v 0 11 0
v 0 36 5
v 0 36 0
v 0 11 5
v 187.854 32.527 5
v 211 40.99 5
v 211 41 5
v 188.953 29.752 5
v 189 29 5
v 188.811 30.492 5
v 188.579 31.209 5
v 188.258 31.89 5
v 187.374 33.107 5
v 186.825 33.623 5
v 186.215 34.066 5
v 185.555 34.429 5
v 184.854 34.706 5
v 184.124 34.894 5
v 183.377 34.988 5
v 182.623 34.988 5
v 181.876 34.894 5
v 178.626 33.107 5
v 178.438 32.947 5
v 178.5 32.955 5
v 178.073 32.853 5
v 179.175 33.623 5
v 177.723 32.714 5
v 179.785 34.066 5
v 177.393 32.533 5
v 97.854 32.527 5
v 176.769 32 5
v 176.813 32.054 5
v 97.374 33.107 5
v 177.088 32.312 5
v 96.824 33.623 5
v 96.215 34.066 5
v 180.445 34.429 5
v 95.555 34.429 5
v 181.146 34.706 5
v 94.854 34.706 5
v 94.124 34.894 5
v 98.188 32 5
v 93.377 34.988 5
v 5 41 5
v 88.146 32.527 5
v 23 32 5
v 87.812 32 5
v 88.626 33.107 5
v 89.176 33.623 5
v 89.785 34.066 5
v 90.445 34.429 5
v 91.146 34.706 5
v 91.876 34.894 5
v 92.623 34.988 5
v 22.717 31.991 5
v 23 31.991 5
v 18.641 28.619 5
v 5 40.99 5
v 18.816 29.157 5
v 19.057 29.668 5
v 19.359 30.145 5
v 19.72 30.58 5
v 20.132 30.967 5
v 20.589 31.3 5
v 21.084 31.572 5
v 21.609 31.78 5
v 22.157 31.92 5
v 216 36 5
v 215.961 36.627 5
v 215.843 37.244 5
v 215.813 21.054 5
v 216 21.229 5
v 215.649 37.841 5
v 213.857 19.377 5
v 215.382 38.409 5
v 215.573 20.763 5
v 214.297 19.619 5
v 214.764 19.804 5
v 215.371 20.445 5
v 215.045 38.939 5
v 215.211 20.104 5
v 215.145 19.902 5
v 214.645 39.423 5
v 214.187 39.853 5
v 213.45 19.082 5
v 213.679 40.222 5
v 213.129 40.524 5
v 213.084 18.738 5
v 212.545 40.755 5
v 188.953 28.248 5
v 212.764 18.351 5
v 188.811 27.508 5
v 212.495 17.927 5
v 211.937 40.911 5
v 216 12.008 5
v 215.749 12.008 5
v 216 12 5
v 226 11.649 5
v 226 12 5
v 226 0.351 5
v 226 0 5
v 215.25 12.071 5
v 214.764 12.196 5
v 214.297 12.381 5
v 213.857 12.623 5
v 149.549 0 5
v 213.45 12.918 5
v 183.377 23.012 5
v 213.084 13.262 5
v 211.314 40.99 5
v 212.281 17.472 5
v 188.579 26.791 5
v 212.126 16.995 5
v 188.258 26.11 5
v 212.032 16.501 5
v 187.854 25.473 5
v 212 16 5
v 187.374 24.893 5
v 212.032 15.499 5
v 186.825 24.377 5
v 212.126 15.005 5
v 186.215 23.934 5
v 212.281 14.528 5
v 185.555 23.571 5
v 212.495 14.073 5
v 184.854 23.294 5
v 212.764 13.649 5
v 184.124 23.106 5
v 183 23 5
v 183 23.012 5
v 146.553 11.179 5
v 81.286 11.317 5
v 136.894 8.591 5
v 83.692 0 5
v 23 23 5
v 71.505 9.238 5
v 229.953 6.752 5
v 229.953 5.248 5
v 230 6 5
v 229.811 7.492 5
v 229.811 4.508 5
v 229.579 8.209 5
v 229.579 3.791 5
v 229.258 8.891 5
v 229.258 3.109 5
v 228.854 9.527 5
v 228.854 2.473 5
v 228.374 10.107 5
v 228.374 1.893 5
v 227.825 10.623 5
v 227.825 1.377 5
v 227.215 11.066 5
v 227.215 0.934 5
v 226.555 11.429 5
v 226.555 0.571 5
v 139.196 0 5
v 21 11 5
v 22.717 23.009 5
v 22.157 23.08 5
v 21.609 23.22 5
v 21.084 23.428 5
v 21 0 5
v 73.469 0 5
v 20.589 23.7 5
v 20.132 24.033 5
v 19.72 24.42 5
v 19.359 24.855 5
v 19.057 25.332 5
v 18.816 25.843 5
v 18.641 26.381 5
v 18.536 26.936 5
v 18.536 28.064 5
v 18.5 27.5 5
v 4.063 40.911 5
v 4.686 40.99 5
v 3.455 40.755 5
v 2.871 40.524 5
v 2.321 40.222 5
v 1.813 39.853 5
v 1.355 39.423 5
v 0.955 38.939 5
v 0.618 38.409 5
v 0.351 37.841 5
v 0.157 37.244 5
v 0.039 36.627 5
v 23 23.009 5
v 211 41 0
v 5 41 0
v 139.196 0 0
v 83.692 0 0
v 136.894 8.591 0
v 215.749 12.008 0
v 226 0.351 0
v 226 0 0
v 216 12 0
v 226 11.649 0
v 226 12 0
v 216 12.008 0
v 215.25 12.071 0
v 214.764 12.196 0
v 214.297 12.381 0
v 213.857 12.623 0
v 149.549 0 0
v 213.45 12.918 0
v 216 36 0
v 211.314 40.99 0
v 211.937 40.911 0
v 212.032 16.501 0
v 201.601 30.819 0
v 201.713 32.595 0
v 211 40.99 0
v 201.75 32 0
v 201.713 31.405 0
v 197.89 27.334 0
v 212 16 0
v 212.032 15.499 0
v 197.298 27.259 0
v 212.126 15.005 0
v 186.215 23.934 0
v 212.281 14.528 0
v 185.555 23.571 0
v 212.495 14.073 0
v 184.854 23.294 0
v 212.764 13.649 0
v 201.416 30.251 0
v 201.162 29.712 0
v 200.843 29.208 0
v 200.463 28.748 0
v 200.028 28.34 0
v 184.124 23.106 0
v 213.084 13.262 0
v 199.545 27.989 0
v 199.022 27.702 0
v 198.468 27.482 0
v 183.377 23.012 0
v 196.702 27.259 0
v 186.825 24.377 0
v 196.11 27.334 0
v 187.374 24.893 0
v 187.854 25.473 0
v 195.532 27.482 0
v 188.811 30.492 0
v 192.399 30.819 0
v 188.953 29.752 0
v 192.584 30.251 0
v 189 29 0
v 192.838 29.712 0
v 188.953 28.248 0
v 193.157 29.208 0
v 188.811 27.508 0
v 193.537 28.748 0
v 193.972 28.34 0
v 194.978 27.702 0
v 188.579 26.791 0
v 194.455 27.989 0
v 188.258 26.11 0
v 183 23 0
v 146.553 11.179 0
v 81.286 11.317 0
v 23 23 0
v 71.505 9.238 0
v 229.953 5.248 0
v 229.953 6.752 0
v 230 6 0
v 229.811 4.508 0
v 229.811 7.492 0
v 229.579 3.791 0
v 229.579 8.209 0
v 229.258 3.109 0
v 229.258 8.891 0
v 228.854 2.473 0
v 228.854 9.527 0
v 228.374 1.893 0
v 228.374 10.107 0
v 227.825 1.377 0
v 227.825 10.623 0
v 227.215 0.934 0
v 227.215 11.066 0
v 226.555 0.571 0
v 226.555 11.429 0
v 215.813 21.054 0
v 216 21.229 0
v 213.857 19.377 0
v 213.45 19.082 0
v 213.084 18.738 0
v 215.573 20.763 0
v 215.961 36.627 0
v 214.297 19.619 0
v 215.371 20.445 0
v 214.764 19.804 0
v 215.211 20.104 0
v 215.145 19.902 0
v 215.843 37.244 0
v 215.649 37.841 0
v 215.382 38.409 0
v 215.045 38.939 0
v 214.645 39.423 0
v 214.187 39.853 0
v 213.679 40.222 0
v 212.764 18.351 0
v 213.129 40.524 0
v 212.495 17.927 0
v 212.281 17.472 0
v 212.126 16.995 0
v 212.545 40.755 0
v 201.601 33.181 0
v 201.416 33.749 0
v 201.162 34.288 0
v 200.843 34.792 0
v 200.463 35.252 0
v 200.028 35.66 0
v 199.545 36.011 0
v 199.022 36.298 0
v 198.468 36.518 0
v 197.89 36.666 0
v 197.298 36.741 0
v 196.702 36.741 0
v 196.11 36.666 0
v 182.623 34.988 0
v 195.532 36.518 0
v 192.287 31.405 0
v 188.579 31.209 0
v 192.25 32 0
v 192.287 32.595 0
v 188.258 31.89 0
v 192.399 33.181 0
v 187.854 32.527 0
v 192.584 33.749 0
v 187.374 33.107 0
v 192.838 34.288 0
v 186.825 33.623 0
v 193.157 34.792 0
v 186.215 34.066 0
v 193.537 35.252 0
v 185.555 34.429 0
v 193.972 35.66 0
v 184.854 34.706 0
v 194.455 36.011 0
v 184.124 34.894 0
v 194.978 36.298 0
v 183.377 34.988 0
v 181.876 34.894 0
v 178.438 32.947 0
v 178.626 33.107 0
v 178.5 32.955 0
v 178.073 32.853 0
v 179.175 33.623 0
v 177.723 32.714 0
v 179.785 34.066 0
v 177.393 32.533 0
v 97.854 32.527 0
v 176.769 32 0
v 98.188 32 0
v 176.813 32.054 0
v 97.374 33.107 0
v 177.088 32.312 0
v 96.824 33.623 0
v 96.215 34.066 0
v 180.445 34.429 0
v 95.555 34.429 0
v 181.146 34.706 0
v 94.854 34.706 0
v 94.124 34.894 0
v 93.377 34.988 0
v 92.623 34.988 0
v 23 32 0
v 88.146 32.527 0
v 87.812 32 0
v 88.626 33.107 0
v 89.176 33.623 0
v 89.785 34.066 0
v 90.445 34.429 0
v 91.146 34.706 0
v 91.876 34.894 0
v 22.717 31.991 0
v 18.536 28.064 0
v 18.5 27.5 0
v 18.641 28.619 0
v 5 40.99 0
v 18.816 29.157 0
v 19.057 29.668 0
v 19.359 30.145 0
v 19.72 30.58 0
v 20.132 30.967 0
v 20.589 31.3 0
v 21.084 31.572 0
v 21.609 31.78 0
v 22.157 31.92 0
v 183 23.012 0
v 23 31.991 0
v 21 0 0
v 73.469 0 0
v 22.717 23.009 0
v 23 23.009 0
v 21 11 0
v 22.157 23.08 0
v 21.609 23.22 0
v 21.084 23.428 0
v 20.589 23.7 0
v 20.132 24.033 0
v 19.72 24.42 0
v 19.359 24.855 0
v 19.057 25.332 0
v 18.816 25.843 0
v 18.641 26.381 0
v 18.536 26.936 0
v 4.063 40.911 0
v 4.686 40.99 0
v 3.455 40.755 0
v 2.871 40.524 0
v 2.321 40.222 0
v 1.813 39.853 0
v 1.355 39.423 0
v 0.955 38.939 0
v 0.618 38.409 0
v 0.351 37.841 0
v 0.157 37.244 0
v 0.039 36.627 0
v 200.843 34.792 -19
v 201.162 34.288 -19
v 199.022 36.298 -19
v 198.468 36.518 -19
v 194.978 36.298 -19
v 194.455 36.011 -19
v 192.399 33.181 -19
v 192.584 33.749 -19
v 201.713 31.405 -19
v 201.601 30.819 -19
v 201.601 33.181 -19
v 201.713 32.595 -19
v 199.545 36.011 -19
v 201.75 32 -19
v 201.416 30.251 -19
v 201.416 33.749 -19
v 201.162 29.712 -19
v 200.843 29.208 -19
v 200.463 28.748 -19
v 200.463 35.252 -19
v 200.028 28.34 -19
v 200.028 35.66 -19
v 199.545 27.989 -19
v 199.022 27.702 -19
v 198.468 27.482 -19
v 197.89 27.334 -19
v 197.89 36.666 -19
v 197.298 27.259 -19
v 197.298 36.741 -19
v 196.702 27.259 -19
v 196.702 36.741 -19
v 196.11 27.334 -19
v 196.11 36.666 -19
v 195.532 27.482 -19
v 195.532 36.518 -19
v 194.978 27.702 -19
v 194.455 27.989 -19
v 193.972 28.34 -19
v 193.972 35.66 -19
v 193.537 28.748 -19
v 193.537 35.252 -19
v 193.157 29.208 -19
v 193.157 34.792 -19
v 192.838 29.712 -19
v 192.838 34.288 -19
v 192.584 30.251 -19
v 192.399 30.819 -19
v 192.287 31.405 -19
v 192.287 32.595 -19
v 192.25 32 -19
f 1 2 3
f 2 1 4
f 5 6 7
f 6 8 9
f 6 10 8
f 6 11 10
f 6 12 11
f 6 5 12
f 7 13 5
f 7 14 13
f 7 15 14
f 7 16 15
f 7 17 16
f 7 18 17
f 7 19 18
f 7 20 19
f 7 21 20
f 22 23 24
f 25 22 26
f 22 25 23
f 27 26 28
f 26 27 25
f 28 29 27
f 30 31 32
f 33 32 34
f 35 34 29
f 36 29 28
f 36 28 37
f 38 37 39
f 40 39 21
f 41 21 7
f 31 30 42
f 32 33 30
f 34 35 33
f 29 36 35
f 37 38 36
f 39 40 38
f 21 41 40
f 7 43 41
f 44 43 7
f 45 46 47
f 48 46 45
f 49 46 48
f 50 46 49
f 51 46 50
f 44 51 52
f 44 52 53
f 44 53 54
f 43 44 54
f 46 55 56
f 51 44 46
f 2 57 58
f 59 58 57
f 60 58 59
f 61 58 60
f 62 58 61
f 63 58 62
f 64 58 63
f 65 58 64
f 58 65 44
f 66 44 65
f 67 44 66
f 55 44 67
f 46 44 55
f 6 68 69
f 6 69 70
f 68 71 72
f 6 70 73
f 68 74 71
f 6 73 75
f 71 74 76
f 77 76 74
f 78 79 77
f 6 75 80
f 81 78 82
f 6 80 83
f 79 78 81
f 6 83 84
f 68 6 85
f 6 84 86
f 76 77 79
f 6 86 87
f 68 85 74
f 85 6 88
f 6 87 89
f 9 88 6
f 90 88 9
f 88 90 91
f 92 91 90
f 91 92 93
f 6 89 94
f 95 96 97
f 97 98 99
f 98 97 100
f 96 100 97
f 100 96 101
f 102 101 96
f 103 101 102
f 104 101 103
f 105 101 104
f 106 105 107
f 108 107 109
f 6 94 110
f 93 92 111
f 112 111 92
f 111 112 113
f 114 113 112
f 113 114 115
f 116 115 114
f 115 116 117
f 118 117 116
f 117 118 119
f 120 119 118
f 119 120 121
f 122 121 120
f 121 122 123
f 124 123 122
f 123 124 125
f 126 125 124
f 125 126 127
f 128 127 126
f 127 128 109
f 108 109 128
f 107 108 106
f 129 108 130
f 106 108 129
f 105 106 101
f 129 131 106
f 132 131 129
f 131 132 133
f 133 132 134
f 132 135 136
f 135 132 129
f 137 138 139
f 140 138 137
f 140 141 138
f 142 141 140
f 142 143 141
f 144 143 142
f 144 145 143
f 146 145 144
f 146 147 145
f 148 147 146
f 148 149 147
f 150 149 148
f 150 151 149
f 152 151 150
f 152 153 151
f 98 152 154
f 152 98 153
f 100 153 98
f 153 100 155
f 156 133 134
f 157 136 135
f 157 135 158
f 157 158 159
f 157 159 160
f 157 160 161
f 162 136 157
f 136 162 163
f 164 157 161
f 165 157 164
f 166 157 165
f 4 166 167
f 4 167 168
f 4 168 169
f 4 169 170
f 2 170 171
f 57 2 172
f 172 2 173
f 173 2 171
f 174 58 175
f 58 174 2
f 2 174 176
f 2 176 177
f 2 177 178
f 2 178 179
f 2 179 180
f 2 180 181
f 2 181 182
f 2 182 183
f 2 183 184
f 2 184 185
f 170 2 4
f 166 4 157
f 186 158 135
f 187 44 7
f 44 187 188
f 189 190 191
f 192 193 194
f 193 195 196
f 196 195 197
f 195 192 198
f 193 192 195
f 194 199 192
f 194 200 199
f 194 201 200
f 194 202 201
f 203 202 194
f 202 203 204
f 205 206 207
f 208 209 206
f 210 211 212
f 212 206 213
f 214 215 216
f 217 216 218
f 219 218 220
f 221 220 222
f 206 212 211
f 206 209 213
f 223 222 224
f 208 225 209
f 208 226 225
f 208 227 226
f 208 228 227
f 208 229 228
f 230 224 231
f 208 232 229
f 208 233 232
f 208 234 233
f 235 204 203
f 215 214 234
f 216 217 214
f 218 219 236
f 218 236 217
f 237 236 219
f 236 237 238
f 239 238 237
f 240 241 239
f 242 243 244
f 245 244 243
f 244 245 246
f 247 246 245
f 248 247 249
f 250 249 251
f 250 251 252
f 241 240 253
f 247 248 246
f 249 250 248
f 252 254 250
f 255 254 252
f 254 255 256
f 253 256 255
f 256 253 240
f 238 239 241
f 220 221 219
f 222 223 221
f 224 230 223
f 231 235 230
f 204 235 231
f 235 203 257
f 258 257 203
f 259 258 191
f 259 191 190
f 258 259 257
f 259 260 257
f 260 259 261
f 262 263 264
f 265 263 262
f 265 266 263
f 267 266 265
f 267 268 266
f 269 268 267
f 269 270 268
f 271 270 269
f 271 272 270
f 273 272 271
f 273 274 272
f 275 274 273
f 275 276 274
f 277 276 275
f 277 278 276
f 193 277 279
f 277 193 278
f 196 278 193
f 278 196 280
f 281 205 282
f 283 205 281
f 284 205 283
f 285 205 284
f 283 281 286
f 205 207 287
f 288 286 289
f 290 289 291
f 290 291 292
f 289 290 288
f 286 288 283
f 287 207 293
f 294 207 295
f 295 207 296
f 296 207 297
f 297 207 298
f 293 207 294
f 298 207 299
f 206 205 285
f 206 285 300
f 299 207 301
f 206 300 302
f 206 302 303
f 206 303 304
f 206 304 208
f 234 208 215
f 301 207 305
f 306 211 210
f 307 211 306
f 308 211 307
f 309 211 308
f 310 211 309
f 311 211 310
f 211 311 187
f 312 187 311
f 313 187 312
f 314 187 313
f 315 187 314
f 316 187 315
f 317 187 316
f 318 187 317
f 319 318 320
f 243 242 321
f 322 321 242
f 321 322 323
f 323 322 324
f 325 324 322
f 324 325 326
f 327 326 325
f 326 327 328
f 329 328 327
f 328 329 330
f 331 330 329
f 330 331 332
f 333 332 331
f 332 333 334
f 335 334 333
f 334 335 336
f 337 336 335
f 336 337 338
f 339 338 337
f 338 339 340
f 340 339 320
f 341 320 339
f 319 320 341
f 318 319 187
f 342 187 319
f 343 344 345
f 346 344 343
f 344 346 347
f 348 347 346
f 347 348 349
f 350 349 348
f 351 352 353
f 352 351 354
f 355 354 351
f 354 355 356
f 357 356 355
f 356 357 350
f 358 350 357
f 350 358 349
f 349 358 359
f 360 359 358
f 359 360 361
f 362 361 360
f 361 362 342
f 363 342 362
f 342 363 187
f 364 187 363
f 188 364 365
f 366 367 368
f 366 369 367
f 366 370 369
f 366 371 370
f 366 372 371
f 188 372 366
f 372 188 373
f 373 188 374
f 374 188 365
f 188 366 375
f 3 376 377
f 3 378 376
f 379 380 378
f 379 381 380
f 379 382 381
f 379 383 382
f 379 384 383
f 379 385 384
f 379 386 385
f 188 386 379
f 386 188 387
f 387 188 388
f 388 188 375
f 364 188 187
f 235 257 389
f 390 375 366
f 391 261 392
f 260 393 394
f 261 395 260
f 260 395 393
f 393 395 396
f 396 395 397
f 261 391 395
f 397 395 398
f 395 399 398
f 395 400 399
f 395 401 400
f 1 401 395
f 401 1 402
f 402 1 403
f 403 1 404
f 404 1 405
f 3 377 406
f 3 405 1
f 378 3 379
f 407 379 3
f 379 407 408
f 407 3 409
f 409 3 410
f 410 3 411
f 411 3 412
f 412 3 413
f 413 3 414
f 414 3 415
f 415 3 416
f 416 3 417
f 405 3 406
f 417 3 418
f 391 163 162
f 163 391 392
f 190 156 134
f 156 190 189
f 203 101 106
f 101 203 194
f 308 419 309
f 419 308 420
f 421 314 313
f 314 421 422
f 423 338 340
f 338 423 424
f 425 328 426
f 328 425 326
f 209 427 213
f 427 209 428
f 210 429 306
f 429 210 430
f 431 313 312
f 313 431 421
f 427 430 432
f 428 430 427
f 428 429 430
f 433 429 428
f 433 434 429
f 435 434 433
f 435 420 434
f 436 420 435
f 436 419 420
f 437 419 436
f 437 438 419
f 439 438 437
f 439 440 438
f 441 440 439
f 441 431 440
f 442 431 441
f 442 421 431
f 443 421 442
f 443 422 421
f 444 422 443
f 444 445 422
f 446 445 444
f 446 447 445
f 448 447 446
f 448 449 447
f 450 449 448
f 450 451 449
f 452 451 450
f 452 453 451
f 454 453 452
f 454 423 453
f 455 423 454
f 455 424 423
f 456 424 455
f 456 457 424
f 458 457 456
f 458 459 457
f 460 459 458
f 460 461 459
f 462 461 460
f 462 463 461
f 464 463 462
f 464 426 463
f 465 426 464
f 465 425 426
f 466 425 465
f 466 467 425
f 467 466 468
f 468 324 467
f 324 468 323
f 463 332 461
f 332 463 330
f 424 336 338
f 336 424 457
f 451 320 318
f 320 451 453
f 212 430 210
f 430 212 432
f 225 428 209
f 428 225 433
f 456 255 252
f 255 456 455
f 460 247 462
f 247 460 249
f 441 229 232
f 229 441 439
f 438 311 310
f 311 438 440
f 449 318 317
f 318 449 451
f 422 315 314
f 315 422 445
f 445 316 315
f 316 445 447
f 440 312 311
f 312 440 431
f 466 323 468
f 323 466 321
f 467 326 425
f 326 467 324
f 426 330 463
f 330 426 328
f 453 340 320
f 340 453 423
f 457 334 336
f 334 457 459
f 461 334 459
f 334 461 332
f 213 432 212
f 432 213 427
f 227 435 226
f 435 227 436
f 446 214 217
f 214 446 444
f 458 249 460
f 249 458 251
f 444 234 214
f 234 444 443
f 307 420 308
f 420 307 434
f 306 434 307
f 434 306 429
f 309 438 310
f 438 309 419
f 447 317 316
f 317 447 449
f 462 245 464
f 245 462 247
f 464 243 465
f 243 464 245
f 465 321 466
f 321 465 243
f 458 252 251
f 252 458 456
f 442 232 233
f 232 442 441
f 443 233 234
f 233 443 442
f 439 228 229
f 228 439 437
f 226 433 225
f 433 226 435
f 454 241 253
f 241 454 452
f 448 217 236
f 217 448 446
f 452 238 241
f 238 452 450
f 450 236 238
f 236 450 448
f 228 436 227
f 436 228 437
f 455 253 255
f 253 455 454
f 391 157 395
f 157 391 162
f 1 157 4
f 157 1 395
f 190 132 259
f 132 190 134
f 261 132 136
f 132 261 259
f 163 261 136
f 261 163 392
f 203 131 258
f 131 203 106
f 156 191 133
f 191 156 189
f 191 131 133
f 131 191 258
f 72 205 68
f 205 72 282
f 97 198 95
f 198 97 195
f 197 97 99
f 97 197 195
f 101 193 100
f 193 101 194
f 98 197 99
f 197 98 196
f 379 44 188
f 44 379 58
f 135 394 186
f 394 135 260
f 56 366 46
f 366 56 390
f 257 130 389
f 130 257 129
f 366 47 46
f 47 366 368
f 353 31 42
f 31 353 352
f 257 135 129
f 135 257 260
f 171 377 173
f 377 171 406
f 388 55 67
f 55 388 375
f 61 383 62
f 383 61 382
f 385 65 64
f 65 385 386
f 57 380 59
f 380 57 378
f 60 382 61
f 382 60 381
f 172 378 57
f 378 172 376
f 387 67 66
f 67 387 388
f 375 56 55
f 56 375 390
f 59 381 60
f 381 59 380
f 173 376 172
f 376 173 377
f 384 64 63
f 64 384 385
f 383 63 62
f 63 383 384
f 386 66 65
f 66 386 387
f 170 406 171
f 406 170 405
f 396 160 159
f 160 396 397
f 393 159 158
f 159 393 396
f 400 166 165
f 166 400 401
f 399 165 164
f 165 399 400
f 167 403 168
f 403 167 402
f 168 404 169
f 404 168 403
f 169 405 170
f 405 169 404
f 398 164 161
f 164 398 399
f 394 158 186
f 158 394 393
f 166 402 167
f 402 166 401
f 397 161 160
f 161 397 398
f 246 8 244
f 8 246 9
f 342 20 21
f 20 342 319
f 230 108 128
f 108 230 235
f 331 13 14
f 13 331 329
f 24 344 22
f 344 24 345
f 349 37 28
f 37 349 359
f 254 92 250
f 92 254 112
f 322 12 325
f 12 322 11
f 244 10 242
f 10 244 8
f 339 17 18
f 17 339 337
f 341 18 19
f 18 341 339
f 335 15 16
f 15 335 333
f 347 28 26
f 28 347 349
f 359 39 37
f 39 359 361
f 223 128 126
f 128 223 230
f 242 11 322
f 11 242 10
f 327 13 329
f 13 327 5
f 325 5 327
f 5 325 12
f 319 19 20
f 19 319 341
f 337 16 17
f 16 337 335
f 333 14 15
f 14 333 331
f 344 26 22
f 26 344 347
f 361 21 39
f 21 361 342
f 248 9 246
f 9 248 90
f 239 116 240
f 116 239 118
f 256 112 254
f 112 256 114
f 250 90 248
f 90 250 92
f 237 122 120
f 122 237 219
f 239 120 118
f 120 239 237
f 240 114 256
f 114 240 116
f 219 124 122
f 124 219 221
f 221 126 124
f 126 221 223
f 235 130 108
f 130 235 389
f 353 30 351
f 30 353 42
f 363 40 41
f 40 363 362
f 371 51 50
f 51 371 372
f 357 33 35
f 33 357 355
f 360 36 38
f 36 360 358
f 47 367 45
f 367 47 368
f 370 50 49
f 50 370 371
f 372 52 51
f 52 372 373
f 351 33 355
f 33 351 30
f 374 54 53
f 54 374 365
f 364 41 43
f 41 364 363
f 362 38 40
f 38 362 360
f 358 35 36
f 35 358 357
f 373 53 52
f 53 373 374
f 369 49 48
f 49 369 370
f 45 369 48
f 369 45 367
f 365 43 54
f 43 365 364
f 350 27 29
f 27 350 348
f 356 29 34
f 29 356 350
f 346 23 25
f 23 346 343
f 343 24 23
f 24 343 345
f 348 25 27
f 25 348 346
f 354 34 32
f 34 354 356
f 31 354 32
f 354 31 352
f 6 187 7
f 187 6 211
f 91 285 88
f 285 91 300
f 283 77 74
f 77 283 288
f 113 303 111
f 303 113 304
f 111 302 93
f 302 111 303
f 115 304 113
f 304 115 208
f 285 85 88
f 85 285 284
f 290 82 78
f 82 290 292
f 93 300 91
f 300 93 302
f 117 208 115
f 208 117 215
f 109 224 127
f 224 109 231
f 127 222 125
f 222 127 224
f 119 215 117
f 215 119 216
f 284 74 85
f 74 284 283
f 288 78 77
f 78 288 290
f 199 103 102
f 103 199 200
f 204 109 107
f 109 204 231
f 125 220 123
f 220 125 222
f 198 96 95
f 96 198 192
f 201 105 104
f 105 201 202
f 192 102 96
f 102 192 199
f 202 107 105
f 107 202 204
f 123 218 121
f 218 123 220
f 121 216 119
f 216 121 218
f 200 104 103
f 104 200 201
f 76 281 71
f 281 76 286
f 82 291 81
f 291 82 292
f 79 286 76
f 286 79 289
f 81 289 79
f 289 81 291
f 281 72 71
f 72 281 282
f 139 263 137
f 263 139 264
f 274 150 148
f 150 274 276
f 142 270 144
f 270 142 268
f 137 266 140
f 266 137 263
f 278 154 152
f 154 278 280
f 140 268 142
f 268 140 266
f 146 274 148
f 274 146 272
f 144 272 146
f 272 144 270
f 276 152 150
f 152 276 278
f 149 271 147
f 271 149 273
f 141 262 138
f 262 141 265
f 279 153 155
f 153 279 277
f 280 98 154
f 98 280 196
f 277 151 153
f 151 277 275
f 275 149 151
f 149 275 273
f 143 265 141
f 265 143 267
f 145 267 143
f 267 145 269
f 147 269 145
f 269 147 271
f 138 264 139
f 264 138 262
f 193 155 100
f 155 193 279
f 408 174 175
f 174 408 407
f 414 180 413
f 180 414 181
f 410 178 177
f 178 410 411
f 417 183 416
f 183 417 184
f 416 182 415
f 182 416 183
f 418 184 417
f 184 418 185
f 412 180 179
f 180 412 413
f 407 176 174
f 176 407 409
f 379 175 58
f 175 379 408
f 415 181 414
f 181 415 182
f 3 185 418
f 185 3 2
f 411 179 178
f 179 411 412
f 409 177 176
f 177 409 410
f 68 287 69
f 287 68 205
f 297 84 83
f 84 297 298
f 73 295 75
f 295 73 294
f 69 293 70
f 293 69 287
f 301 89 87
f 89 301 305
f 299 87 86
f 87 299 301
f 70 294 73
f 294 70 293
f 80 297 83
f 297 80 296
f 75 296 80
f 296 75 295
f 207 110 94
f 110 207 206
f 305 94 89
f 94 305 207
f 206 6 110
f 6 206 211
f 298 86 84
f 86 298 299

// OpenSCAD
$fn=50;

difference() {
    union () {
        cube([230,41,5]);
        translate([197,32,-19]) cylinder(19,9.5/2,9.5/2);
    }
    cube([21,11,5]);
    translate([74,-2.5,0]) rotate(12, [0,0,1]) cube([10,12,5]);
    translate([140,-3,0]) rotate(15, [0,0,1]) cube([10,12,5]);
    translate([216,12,0]) cube([14,29,5]);
    translate([226,0,0]) cube([5,12,5]);
    translate([0,36,0]) cube([5,5,5]);
    
    translate([23,23,0]) cube([160,9,5]);
    translate([23,27.5,0]) cylinder(5,9/2,9/2);
    translate([183,29,0]) cylinder(5,12/2,12/2);
    translate([93,29,0]) cylinder(5,12/2,12/2);
    translate([179,30,0]) cylinder(5,6/2,6/2);
    
    translate([211,36,0]) cube([5,5,5]);
    translate([216,16,0]) cylinder(5,8/2,8/2);
    translate([218,19,0]) cylinder(5,6/2,6/2);
    //translate([197,32,-17]) cylinder(22,8/2,8/2);
    //translate([197,32,2]) cylinder(3,8/2,10/2);
}
translate([224,6,0]) cylinder(5,12/2,12/2);
translate([5,36,0]) cylinder(5,10/2,10/2);
translate([211,36,0]) cylinder(5,10/2,10/2);
